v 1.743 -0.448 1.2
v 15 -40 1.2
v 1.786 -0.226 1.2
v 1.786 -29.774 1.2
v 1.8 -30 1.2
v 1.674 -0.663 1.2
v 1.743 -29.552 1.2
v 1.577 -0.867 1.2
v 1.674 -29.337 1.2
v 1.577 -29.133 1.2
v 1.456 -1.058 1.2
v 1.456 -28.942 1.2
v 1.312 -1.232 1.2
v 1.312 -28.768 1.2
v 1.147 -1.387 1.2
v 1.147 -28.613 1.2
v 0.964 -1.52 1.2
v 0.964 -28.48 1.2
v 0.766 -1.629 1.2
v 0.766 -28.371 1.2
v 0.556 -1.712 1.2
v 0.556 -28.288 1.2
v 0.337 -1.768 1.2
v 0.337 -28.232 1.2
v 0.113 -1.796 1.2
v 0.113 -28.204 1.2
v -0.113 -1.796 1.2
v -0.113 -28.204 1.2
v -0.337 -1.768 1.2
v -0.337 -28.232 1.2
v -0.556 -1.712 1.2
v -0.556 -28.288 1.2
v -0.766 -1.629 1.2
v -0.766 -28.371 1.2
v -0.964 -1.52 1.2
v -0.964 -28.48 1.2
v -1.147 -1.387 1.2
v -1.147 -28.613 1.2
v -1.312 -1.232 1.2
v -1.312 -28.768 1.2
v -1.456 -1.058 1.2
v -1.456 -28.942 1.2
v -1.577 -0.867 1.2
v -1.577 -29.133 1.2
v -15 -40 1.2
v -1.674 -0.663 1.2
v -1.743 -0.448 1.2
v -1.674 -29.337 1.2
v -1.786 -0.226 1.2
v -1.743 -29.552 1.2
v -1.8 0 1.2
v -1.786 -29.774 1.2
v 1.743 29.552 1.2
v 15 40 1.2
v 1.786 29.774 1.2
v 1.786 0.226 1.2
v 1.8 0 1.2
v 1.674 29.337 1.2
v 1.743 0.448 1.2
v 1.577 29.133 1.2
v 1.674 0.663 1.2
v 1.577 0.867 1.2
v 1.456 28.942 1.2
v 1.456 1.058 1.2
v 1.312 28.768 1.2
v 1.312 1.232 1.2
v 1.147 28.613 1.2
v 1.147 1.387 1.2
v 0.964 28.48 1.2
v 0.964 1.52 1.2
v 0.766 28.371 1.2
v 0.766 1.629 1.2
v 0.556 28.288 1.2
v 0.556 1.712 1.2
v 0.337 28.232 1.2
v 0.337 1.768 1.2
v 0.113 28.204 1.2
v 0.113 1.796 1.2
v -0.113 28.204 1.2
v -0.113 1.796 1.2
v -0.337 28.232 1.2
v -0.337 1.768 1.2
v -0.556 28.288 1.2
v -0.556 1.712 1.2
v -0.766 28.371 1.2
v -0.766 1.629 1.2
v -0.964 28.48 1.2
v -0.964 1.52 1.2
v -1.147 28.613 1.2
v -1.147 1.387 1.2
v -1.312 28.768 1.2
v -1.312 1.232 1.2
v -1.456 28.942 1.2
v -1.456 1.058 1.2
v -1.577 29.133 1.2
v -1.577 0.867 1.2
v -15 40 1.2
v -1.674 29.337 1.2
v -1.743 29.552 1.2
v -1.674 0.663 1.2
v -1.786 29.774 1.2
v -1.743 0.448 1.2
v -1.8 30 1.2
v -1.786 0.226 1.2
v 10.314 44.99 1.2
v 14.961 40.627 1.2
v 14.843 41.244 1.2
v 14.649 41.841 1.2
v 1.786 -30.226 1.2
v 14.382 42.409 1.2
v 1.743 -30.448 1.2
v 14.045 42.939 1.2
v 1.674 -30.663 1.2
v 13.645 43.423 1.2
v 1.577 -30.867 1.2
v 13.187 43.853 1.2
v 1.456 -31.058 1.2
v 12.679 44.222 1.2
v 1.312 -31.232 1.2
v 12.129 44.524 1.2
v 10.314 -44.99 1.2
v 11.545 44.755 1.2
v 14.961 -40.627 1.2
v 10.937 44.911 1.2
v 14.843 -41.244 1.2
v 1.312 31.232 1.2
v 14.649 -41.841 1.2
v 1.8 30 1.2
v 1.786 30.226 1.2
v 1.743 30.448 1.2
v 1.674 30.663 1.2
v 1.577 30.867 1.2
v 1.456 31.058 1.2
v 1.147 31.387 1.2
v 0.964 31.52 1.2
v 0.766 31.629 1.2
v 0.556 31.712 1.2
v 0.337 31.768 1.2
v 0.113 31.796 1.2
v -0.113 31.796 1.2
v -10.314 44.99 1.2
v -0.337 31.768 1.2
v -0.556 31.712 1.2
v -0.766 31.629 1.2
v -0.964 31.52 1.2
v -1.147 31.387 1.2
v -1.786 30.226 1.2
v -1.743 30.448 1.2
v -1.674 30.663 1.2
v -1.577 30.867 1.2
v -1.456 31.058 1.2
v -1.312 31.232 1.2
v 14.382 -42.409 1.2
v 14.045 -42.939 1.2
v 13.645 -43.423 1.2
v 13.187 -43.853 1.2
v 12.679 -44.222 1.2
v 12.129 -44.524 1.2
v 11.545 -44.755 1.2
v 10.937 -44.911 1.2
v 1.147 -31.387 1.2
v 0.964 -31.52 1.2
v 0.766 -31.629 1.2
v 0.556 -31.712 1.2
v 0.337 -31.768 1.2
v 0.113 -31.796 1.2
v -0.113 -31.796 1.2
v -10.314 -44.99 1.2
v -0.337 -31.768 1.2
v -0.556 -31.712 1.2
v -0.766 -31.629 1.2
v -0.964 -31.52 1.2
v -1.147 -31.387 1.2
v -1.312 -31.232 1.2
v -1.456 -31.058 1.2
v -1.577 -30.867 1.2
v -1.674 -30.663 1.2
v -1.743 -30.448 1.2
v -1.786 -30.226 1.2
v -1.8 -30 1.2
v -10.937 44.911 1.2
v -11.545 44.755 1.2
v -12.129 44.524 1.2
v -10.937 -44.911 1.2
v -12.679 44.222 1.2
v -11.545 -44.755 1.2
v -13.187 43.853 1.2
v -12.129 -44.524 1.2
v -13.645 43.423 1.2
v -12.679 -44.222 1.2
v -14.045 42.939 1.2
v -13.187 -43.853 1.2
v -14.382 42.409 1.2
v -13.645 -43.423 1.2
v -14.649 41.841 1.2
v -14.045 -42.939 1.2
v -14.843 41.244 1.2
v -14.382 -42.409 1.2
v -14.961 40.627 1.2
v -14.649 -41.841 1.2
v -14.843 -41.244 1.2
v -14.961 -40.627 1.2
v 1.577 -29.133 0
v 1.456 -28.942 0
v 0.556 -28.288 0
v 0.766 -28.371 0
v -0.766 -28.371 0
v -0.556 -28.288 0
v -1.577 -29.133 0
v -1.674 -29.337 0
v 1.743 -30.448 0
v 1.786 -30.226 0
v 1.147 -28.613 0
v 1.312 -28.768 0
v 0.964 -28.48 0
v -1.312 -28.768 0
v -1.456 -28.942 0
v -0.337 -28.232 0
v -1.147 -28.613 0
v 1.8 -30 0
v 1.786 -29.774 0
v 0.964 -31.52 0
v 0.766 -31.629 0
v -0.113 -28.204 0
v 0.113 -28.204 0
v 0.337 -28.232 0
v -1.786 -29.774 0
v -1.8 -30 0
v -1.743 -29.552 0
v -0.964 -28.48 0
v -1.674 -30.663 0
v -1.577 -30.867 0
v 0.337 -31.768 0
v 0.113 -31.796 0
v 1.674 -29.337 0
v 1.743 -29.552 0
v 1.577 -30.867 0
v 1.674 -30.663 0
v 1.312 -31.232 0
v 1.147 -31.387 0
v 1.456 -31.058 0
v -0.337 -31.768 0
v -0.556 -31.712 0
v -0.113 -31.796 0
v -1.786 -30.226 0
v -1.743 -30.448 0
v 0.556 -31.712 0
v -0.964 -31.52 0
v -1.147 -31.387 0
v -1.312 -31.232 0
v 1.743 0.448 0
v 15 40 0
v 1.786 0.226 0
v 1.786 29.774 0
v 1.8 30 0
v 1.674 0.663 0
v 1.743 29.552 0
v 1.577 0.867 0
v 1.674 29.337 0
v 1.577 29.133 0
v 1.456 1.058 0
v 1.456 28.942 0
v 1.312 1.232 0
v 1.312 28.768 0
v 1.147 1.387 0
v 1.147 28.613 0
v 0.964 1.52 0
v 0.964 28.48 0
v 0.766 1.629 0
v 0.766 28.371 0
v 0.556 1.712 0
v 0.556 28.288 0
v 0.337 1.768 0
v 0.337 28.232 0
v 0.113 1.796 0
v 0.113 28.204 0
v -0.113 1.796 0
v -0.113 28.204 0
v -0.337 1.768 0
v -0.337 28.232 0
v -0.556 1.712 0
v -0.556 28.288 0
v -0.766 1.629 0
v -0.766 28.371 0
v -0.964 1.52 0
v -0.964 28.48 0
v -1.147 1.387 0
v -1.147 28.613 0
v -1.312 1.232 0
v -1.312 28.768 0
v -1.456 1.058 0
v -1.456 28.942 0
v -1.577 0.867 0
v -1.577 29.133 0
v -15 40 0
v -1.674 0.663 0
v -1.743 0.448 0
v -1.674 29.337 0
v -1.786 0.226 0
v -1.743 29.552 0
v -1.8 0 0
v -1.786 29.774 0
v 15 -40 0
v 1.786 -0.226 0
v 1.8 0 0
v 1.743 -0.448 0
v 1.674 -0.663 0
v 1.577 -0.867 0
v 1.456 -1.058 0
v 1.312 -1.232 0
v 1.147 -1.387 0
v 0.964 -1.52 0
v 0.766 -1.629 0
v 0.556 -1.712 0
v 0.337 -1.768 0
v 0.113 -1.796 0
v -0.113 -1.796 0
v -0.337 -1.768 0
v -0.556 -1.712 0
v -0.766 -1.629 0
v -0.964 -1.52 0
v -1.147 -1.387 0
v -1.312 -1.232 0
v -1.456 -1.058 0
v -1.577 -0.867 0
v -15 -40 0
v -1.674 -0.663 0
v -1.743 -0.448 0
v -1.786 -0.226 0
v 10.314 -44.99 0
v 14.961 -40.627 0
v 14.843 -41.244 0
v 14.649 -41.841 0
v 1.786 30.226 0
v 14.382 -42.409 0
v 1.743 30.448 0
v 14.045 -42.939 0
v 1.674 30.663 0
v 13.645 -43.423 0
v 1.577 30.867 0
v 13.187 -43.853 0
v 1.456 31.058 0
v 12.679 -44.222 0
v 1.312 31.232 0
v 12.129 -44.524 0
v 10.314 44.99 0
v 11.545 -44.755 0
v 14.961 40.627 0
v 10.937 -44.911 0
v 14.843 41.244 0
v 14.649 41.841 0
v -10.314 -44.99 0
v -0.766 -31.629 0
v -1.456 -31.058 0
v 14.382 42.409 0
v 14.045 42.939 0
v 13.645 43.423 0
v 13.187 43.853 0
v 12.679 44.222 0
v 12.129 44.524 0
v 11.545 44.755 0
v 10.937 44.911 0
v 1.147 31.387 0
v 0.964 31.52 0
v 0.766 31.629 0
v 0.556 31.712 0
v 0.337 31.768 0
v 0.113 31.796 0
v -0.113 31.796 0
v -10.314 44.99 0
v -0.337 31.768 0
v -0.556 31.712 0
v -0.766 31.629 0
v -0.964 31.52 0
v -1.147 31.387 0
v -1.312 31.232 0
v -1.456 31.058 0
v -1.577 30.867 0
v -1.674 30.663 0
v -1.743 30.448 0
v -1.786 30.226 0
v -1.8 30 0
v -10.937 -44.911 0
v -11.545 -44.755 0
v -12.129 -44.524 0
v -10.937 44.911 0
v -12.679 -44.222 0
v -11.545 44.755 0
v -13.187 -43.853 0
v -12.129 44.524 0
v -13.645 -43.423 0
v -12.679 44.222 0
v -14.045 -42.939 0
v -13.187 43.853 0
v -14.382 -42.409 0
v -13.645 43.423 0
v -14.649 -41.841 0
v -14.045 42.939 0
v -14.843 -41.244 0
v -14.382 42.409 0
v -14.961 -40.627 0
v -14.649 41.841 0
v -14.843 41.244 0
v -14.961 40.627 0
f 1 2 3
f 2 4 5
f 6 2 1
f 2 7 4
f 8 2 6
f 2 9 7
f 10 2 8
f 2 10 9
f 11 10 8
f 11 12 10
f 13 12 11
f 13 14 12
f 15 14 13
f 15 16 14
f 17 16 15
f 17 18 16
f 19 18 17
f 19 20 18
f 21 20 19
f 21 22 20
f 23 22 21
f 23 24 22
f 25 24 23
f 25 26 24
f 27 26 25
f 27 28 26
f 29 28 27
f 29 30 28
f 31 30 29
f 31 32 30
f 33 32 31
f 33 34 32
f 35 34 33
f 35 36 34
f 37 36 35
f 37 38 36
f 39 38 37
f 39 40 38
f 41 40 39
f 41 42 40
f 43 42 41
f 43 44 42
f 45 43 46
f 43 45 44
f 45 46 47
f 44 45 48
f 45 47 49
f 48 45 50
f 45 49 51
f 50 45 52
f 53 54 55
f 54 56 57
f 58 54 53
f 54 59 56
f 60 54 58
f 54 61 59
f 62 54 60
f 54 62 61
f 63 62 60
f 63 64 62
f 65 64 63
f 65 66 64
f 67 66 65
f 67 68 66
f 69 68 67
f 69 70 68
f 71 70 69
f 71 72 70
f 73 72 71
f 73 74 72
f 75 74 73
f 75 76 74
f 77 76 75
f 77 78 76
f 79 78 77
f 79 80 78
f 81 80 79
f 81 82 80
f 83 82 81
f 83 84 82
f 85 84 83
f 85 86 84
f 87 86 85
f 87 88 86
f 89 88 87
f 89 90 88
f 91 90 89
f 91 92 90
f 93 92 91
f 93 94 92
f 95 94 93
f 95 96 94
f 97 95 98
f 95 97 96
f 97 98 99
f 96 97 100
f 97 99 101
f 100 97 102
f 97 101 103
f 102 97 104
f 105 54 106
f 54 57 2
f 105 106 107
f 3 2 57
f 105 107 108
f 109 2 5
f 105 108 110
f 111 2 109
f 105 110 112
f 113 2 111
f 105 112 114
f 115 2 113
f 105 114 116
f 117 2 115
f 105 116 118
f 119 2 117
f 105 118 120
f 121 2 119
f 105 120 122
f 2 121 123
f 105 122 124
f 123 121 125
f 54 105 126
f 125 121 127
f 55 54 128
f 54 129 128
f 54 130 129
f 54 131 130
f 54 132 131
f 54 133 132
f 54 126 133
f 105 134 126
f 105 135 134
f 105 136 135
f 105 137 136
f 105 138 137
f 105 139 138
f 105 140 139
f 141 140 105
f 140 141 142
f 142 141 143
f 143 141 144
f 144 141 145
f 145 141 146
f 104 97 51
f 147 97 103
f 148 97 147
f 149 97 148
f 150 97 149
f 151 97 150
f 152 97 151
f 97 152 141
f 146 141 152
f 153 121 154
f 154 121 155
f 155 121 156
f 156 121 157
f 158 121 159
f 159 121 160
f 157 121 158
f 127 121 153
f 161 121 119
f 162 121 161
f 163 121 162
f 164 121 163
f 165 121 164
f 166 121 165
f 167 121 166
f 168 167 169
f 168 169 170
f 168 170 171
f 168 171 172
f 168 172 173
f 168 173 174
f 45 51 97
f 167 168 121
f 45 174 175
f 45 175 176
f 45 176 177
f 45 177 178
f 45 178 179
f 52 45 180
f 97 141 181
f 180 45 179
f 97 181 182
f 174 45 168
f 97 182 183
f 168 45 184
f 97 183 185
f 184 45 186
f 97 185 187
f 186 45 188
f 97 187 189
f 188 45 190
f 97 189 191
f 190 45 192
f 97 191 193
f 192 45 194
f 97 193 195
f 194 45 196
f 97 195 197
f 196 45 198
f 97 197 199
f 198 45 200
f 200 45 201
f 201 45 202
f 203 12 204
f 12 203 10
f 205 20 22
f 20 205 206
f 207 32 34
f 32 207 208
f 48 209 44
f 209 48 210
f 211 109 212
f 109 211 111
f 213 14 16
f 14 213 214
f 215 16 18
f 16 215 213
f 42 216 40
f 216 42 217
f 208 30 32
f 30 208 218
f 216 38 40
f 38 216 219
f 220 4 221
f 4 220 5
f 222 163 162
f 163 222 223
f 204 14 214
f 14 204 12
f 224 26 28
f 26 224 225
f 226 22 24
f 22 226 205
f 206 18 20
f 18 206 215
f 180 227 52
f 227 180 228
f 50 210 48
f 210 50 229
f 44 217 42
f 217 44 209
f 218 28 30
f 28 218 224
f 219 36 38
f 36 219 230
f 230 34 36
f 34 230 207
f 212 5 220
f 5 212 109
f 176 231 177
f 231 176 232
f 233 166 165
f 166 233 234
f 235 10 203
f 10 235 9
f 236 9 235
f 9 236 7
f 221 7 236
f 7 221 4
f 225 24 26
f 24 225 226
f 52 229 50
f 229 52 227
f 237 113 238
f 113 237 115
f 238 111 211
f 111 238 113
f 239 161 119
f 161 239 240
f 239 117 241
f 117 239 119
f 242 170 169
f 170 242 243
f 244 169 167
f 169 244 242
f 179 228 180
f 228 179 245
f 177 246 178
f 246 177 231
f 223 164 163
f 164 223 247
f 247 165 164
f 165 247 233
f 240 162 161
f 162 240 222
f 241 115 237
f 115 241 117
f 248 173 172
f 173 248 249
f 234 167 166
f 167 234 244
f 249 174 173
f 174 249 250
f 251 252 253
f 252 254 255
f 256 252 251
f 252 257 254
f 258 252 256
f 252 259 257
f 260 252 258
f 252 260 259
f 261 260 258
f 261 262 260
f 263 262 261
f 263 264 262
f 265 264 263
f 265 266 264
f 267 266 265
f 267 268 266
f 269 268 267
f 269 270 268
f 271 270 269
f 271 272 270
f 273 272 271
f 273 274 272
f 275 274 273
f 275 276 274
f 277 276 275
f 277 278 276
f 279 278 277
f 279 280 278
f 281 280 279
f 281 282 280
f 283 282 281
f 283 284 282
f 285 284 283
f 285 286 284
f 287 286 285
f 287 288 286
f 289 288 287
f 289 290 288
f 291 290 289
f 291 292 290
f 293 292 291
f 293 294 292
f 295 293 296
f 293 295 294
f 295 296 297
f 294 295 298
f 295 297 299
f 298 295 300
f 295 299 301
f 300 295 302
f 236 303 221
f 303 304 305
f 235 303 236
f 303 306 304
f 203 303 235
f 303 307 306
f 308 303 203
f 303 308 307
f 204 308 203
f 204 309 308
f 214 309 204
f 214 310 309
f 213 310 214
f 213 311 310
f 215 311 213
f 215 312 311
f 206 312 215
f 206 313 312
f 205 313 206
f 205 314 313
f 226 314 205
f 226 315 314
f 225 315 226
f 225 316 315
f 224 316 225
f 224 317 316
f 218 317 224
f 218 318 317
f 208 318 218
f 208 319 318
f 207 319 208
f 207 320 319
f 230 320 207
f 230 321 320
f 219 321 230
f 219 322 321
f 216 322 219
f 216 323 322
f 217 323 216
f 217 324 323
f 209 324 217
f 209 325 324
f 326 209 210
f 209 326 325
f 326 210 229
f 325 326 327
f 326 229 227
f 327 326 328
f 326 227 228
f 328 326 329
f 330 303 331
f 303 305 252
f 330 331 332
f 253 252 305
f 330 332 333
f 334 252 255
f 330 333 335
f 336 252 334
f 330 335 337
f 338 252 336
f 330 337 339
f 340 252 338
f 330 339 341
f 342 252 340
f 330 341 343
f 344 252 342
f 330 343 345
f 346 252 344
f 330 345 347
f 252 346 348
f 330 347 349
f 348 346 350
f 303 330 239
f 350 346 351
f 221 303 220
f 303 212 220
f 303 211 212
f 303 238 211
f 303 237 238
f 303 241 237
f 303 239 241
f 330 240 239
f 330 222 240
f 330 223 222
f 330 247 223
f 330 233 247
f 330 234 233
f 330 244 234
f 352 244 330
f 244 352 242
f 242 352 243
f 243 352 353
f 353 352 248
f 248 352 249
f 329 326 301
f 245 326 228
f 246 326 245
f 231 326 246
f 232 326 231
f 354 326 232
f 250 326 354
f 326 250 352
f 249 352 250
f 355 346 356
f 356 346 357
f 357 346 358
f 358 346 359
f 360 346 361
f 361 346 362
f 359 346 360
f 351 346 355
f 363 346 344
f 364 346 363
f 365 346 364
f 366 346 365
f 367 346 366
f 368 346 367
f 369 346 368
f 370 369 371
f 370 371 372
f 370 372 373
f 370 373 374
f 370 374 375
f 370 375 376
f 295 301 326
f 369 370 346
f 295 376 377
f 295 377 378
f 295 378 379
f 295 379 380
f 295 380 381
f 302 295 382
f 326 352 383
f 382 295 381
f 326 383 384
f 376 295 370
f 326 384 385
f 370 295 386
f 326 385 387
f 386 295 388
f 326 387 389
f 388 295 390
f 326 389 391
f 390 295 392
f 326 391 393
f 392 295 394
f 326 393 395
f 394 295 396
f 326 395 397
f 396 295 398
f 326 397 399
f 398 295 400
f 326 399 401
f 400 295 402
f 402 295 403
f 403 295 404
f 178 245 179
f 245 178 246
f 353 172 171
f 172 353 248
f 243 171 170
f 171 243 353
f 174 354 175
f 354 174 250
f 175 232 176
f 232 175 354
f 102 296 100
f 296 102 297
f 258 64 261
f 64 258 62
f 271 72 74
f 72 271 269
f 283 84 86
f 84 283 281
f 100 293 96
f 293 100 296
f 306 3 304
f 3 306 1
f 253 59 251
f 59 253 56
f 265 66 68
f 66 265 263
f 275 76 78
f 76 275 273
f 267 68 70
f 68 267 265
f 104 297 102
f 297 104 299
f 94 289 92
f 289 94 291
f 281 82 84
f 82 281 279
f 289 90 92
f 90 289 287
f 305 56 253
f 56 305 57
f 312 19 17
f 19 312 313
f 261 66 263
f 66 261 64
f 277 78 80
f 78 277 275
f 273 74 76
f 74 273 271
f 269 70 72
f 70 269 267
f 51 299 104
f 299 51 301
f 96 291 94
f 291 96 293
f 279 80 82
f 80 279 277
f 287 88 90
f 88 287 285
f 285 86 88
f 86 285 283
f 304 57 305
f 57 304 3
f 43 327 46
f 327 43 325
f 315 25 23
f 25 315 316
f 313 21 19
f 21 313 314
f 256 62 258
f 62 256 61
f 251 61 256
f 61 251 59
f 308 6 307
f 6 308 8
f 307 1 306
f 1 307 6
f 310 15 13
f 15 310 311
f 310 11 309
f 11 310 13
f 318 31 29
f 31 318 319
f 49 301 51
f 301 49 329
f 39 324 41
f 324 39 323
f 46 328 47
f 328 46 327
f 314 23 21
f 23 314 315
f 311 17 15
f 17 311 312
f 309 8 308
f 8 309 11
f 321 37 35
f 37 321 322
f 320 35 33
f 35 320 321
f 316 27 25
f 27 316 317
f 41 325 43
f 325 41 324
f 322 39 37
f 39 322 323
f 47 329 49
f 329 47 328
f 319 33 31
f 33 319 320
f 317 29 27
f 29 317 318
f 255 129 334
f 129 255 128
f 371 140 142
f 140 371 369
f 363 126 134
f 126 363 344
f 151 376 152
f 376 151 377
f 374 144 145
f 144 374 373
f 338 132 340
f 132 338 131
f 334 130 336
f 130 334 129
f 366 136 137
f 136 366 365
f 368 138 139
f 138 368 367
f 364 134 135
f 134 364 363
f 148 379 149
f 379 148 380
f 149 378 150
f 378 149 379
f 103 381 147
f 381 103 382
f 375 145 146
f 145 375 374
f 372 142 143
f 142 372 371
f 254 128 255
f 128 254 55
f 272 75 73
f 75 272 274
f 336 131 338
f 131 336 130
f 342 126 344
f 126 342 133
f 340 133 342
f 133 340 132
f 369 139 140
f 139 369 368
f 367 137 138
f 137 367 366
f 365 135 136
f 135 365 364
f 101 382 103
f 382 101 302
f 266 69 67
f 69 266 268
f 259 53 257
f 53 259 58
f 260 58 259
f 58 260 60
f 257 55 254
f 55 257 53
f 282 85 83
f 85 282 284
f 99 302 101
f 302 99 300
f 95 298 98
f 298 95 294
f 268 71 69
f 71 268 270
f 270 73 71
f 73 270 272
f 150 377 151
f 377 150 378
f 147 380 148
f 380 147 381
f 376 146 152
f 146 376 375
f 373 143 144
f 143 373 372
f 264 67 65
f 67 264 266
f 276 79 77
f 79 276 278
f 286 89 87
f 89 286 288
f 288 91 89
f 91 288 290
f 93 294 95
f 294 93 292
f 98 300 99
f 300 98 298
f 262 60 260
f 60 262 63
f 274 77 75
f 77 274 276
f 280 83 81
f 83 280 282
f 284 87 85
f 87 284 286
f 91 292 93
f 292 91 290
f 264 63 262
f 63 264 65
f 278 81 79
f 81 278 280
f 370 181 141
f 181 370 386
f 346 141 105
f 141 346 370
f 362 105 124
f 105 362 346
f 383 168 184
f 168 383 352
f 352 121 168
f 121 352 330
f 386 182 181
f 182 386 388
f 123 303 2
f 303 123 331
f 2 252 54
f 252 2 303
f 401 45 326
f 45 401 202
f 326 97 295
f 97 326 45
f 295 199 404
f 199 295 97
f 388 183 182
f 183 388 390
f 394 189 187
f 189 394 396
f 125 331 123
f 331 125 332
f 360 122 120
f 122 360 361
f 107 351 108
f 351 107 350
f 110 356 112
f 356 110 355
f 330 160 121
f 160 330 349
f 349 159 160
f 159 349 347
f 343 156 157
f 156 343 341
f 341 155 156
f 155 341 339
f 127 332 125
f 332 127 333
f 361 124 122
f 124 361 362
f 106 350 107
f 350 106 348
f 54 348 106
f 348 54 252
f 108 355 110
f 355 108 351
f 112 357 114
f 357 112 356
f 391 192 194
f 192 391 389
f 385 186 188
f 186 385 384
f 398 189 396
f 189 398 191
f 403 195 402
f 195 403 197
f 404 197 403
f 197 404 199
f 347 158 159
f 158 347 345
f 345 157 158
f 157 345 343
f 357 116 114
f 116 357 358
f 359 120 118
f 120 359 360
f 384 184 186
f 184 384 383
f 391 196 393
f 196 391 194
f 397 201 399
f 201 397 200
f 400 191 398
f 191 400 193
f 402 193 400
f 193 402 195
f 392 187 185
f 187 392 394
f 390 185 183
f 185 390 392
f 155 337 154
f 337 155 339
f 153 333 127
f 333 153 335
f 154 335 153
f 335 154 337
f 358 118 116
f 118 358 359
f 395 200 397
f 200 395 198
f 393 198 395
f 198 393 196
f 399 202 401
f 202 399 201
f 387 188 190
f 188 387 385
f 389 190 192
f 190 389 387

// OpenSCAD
$fn = 50;


difference() {
	union() {
		hull() {
			translate(v = [-10.0000000000, 40.0000000000, 0]) {
				cylinder(h = 60, r = 5);
			}
			translate(v = [10.0000000000, 40.0000000000, 0]) {
				cylinder(h = 60, r = 5);
			}
			translate(v = [-10.0000000000, -40.0000000000, 0]) {
				cylinder(h = 60, r = 5);
			}
			translate(v = [10.0000000000, -40.0000000000, 0]) {
				cylinder(h = 60, r = 5);
			}
		}
	}
	union() {
		translate(v = [0, 0, 1.2000000000]) {
			hull() {
				translate(v = [-10.0000000000, 40.0000000000, 0]) {
					cylinder(h = 58.8000000000, r = 3.8000000000);
				}
				translate(v = [10.0000000000, 40.0000000000, 0]) {
					cylinder(h = 58.8000000000, r = 3.8000000000);
				}
				translate(v = [-10.0000000000, -40.0000000000, 0]) {
					cylinder(h = 58.8000000000, r = 3.8000000000);
				}
				translate(v = [10.0000000000, -40.0000000000, 0]) {
					cylinder(h = 58.8000000000, r = 3.8000000000);
				}
			}
		}
		#translate(v = [0.0000000000, -30.0000000000, 0]) {
			cylinder(h = 1.2000000000, r = 1.8000000000);
		}
		#cylinder(h = 1.2000000000, r = 1.8000000000);
		#translate(v = [0.0000000000, 30.0000000000, 0]) {
			cylinder(h = 1.2000000000, r = 1.8000000000);
		}
		translate(v = [-250.0000000000, -250.0000000000, 1.2000000000]) {
			cube(size = [500, 500, 500]);
		}
		translate(v = [-250.0000000000, -250.0000000000, 1.2000000000]) {
			cube(size = [500, 500, 500]);
		}
		translate(v = [-250.0000000000, -250.0000000000, 1.2000000000]) {
			cube(size = [500, 500, 500]);
		}
	}
}
